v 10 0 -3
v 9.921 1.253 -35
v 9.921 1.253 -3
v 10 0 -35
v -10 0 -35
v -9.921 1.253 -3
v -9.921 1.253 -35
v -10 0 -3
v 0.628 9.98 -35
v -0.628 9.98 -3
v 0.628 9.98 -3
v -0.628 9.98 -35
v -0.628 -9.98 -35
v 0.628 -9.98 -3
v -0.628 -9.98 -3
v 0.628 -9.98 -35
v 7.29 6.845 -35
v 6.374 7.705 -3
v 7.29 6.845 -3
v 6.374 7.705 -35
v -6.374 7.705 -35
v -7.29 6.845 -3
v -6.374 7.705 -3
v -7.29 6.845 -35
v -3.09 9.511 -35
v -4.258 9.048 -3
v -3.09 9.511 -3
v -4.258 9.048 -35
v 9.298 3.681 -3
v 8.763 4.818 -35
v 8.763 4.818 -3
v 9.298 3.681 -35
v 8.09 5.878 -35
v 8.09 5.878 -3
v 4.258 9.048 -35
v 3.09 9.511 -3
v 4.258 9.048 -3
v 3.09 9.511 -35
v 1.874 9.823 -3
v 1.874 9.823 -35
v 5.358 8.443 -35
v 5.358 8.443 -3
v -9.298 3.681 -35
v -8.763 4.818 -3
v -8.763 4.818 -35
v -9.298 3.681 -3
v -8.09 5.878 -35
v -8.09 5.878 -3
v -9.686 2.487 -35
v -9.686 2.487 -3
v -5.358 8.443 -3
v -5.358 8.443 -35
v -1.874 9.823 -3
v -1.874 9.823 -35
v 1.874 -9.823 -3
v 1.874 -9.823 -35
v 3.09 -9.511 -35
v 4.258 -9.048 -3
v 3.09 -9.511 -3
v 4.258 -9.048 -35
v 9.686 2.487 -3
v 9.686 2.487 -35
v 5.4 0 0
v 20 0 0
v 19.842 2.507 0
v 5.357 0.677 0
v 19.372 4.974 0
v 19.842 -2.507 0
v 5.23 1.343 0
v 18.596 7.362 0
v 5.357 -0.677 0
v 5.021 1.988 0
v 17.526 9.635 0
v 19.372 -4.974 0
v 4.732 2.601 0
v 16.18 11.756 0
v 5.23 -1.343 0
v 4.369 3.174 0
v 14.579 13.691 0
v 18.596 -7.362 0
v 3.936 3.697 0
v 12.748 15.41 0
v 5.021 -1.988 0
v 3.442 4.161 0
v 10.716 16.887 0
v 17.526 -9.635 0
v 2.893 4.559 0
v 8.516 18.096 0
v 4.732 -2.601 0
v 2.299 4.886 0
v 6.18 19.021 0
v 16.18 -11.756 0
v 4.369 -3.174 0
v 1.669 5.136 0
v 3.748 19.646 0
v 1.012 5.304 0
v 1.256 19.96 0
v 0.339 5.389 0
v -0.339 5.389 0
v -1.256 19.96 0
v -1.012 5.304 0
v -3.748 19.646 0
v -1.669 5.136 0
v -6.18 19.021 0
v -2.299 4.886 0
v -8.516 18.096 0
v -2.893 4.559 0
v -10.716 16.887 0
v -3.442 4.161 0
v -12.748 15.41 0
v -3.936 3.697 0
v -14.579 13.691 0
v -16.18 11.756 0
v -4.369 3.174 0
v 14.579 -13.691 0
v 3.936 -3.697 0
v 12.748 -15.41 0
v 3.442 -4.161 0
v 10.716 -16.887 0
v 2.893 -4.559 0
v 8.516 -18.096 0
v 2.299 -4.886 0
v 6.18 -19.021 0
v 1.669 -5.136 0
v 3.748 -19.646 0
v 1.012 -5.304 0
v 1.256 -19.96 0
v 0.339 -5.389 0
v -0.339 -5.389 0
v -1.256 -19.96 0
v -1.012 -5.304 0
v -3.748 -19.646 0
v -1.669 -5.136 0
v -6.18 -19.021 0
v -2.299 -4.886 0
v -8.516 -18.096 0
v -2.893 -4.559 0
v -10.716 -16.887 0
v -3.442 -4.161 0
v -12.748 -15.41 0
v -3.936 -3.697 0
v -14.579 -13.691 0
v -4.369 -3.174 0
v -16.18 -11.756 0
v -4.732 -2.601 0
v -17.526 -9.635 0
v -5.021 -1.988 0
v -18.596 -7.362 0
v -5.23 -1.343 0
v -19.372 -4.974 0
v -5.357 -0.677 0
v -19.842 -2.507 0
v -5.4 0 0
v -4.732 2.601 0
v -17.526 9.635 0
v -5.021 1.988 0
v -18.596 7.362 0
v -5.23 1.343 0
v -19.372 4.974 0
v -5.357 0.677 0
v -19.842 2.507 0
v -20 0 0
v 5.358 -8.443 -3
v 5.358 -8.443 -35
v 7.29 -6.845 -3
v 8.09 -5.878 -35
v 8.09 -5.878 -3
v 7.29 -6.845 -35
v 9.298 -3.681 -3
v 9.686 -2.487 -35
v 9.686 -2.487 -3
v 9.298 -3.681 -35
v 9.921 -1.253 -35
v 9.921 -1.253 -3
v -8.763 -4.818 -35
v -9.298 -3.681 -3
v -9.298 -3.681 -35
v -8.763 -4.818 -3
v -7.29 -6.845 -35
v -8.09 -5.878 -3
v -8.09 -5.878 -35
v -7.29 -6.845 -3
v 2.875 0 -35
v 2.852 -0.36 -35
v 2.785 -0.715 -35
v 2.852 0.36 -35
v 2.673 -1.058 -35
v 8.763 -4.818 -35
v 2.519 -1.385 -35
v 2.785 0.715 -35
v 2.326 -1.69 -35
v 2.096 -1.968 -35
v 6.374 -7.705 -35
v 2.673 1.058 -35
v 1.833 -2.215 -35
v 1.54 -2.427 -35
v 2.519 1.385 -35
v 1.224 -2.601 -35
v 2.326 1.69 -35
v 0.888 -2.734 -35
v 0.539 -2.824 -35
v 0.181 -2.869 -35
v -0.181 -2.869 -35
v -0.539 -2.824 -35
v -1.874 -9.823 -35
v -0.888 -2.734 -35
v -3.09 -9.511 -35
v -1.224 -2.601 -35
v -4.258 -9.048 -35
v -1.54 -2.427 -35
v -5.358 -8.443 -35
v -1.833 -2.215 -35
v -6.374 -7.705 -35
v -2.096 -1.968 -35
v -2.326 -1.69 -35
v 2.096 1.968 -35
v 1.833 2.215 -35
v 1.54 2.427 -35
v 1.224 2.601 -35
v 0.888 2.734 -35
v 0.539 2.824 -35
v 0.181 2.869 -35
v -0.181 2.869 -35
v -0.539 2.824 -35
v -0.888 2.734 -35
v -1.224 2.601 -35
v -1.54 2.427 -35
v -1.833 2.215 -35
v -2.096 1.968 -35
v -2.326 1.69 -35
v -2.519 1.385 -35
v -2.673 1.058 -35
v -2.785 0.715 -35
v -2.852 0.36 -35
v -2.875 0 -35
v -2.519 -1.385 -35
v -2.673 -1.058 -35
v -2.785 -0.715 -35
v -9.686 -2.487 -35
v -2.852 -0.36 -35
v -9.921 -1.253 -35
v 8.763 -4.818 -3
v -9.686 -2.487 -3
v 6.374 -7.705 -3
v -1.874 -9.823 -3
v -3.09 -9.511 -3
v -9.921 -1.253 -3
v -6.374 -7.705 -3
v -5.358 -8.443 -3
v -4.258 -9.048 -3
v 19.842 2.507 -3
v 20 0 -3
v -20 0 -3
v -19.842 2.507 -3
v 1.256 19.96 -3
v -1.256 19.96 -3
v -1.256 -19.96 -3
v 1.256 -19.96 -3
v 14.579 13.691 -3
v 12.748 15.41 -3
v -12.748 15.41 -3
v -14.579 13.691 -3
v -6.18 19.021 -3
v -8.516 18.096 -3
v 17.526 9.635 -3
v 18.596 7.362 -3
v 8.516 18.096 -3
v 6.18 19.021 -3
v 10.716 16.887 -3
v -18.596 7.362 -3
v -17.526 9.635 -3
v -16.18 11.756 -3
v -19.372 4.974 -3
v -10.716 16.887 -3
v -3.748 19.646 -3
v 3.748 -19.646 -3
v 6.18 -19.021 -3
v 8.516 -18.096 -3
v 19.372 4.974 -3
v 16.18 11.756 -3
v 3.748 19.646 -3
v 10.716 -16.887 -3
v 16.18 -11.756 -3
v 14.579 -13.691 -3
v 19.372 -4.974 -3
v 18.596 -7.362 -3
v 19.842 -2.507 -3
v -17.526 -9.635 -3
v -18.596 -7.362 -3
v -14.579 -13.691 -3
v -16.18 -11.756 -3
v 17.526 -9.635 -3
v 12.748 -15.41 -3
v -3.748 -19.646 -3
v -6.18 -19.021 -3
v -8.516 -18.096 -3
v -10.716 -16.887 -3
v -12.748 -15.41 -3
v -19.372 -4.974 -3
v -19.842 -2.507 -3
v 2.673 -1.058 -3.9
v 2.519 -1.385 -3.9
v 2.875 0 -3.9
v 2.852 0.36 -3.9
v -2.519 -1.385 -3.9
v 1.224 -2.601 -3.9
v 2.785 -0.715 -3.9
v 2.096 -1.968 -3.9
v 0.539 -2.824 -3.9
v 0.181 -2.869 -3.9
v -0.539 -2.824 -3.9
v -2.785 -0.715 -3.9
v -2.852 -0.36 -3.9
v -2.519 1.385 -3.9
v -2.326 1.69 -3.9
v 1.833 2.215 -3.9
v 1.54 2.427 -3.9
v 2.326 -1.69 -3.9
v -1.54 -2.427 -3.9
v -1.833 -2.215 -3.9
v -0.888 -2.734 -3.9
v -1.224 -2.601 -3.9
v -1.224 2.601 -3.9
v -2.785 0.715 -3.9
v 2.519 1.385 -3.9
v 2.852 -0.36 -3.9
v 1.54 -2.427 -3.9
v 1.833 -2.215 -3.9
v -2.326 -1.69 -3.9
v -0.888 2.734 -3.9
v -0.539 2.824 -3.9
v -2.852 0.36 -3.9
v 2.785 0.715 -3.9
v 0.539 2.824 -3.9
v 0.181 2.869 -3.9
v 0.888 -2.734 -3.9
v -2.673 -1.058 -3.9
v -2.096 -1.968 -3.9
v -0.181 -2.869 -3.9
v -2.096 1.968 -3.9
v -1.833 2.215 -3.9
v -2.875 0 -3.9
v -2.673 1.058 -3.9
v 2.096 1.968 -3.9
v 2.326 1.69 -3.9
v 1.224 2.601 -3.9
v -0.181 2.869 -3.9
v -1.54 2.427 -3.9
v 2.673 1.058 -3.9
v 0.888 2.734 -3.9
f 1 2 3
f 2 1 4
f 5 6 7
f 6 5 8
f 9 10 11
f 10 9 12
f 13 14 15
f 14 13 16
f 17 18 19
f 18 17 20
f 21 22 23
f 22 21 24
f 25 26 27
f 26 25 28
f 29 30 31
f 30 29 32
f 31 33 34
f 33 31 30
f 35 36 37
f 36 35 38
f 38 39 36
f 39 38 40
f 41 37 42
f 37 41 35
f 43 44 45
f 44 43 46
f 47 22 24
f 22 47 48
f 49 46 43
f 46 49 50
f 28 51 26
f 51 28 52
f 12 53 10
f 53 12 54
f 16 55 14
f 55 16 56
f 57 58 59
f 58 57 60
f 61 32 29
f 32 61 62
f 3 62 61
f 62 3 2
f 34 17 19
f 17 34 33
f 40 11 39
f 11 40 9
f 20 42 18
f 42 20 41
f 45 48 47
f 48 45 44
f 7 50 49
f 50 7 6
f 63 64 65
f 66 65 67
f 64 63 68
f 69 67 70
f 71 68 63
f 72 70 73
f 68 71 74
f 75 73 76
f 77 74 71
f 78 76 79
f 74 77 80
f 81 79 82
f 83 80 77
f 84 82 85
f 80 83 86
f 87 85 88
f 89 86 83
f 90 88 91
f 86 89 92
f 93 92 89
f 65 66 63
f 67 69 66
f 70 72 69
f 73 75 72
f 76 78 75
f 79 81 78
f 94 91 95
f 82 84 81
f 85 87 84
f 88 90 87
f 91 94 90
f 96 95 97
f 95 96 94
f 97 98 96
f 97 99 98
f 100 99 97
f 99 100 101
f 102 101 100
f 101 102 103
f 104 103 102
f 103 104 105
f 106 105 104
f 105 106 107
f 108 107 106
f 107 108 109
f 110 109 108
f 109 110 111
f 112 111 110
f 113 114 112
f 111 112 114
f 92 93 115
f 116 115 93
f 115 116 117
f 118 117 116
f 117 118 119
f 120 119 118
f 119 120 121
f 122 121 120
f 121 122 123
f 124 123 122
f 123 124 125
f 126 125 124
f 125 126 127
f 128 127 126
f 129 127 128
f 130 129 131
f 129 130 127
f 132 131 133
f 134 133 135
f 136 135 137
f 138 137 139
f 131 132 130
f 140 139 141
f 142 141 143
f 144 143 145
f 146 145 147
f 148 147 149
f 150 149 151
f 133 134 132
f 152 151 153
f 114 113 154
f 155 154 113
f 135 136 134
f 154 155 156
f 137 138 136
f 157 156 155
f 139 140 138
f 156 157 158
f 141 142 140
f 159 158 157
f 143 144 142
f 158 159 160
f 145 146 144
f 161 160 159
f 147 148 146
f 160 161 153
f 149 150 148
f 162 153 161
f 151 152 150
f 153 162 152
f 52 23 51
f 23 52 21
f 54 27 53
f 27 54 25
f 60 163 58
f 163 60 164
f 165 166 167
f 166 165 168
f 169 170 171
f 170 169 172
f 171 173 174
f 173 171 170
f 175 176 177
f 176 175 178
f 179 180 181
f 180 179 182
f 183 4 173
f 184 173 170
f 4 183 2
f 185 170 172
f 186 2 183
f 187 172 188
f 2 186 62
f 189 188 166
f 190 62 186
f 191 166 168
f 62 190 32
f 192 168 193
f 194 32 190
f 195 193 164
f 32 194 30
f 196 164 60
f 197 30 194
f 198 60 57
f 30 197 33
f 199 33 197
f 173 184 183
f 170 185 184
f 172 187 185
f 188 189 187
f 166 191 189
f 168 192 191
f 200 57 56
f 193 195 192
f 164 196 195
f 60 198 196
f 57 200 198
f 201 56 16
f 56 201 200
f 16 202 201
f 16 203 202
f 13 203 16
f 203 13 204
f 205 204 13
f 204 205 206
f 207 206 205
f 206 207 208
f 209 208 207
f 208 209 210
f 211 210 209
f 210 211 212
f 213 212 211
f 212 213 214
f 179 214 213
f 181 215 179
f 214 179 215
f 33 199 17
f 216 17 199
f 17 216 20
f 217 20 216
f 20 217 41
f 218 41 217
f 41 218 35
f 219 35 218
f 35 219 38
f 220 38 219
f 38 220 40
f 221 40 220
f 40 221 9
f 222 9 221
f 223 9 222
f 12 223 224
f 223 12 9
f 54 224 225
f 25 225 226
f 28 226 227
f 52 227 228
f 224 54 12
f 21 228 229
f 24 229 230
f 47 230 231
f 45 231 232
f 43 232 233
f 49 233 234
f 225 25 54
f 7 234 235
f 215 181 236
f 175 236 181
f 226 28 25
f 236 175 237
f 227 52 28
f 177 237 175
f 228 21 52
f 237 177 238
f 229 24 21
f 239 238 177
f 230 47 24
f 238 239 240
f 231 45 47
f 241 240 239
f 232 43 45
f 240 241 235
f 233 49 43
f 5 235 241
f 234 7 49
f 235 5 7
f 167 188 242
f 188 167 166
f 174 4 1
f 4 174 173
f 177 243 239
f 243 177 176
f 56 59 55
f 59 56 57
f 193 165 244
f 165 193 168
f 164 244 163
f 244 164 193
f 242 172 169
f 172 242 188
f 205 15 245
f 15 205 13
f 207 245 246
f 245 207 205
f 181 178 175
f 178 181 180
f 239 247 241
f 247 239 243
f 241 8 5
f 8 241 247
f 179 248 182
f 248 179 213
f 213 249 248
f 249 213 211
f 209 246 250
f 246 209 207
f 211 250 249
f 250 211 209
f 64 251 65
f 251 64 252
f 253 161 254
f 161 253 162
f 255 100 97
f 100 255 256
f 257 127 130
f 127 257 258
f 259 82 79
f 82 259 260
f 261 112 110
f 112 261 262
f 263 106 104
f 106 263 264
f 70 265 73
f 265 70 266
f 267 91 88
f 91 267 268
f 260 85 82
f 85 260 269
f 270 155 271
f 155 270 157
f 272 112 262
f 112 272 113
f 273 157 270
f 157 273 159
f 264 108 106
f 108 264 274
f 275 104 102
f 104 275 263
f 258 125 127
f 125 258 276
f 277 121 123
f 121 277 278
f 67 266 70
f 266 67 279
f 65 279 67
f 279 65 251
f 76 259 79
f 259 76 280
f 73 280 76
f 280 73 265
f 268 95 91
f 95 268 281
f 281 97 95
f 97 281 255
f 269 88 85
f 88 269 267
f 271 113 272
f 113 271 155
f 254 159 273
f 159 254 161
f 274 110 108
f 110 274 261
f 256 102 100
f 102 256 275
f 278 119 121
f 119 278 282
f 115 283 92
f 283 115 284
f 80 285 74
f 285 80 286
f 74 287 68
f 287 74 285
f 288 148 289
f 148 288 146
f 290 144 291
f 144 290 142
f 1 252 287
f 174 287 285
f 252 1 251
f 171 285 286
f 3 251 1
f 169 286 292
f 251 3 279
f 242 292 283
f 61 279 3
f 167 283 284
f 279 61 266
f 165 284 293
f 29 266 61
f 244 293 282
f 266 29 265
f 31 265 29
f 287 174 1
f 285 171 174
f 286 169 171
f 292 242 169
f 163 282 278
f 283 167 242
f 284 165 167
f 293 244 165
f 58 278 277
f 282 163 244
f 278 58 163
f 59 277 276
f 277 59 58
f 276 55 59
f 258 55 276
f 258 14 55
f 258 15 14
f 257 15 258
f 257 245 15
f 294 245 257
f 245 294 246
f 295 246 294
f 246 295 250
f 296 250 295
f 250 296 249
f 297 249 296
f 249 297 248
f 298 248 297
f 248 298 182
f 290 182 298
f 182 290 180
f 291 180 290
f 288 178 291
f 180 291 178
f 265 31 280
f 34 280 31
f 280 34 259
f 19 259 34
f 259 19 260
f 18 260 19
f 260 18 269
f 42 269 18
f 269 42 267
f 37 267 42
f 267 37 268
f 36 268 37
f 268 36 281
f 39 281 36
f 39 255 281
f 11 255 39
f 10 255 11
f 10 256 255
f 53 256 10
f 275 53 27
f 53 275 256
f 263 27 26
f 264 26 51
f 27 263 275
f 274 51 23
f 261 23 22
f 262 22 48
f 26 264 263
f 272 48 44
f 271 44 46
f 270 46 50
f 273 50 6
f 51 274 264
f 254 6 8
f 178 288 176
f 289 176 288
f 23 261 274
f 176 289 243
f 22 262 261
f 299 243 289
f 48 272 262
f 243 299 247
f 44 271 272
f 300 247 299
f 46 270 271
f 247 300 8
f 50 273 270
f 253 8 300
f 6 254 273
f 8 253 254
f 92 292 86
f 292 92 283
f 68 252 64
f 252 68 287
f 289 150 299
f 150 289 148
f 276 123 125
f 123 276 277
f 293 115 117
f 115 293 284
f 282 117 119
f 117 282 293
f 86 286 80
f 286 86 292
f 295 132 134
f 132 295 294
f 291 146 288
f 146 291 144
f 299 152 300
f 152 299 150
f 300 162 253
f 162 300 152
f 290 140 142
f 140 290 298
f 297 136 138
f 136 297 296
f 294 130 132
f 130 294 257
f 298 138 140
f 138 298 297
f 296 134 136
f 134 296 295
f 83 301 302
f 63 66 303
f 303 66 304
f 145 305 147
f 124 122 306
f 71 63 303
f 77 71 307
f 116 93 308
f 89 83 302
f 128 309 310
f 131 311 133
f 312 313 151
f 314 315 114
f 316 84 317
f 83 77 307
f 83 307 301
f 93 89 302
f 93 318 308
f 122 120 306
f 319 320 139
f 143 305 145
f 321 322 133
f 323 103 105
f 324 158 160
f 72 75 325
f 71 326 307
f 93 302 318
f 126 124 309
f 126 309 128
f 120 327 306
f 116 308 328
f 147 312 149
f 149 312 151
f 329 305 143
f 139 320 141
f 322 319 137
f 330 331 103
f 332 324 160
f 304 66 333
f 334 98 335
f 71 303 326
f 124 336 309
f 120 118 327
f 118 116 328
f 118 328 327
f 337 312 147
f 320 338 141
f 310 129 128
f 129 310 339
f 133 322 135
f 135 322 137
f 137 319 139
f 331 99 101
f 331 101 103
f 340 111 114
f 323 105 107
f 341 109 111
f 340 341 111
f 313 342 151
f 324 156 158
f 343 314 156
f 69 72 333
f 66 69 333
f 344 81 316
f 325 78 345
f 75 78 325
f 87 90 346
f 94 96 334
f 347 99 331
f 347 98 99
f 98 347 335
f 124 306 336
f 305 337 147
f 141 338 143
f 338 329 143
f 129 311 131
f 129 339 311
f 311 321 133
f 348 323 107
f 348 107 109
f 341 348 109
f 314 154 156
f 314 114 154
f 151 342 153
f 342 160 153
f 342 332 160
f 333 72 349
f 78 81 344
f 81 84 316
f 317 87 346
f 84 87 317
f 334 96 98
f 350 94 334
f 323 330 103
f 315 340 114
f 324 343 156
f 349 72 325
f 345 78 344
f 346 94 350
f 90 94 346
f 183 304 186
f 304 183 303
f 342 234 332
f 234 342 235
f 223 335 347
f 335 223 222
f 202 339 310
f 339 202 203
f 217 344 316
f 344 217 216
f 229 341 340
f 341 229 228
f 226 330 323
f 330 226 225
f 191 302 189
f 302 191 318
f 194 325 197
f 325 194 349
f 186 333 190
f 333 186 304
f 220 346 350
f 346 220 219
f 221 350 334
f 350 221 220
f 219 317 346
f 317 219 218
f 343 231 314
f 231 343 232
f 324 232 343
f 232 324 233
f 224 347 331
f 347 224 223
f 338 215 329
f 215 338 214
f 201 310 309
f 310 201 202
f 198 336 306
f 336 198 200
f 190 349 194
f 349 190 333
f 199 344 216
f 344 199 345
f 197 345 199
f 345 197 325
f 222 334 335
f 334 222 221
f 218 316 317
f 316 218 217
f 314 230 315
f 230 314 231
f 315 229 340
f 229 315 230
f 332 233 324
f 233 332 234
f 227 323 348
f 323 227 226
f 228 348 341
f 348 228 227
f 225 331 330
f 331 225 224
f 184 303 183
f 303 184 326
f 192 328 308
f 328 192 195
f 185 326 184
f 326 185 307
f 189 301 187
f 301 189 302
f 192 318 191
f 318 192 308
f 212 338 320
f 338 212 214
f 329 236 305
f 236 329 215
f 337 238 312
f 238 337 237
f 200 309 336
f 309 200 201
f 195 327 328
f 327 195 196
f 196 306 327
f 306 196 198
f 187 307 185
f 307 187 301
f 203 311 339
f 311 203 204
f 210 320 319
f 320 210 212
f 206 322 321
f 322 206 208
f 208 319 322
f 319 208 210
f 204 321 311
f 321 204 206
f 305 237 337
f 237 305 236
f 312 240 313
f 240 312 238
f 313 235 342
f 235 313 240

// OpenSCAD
$fn = 50;


difference() {
	union() {
		translate(v = [0, 0, -35.0000000000]) {
			cylinder(h = 35, r = 10.0000000000);
		}
		translate(v = [0, 0, -3.0000000000]) {
			cylinder(h = 3, r = 20.0000000000);
		}
	}
	union() {
		translate(v = [0, 0, 0]) {
			rotate(a = [0, 0, 0]) {
				difference() {
					union() {
						#translate(v = [0, 0, -35.0000000000]) {
							cylinder(h = 35, r = 2.6000000000);
						}
						#translate(v = [0, 0, -3.9000000000]) {
							cylinder(h = 3.9000000000, r = 10.0000000000, r1 = 2.8750000000, r2 = 5.4000000000);
						}
						#translate(v = [0, 0, -35.0000000000]) {
							cylinder(h = 35, r = 2.8750000000);
						}
						#translate(v = [0, 0, -35.0000000000]) {
							cylinder(h = 35, r = 2.6000000000);
						}
					}
					union();
				}
			}
		}
	}
}
